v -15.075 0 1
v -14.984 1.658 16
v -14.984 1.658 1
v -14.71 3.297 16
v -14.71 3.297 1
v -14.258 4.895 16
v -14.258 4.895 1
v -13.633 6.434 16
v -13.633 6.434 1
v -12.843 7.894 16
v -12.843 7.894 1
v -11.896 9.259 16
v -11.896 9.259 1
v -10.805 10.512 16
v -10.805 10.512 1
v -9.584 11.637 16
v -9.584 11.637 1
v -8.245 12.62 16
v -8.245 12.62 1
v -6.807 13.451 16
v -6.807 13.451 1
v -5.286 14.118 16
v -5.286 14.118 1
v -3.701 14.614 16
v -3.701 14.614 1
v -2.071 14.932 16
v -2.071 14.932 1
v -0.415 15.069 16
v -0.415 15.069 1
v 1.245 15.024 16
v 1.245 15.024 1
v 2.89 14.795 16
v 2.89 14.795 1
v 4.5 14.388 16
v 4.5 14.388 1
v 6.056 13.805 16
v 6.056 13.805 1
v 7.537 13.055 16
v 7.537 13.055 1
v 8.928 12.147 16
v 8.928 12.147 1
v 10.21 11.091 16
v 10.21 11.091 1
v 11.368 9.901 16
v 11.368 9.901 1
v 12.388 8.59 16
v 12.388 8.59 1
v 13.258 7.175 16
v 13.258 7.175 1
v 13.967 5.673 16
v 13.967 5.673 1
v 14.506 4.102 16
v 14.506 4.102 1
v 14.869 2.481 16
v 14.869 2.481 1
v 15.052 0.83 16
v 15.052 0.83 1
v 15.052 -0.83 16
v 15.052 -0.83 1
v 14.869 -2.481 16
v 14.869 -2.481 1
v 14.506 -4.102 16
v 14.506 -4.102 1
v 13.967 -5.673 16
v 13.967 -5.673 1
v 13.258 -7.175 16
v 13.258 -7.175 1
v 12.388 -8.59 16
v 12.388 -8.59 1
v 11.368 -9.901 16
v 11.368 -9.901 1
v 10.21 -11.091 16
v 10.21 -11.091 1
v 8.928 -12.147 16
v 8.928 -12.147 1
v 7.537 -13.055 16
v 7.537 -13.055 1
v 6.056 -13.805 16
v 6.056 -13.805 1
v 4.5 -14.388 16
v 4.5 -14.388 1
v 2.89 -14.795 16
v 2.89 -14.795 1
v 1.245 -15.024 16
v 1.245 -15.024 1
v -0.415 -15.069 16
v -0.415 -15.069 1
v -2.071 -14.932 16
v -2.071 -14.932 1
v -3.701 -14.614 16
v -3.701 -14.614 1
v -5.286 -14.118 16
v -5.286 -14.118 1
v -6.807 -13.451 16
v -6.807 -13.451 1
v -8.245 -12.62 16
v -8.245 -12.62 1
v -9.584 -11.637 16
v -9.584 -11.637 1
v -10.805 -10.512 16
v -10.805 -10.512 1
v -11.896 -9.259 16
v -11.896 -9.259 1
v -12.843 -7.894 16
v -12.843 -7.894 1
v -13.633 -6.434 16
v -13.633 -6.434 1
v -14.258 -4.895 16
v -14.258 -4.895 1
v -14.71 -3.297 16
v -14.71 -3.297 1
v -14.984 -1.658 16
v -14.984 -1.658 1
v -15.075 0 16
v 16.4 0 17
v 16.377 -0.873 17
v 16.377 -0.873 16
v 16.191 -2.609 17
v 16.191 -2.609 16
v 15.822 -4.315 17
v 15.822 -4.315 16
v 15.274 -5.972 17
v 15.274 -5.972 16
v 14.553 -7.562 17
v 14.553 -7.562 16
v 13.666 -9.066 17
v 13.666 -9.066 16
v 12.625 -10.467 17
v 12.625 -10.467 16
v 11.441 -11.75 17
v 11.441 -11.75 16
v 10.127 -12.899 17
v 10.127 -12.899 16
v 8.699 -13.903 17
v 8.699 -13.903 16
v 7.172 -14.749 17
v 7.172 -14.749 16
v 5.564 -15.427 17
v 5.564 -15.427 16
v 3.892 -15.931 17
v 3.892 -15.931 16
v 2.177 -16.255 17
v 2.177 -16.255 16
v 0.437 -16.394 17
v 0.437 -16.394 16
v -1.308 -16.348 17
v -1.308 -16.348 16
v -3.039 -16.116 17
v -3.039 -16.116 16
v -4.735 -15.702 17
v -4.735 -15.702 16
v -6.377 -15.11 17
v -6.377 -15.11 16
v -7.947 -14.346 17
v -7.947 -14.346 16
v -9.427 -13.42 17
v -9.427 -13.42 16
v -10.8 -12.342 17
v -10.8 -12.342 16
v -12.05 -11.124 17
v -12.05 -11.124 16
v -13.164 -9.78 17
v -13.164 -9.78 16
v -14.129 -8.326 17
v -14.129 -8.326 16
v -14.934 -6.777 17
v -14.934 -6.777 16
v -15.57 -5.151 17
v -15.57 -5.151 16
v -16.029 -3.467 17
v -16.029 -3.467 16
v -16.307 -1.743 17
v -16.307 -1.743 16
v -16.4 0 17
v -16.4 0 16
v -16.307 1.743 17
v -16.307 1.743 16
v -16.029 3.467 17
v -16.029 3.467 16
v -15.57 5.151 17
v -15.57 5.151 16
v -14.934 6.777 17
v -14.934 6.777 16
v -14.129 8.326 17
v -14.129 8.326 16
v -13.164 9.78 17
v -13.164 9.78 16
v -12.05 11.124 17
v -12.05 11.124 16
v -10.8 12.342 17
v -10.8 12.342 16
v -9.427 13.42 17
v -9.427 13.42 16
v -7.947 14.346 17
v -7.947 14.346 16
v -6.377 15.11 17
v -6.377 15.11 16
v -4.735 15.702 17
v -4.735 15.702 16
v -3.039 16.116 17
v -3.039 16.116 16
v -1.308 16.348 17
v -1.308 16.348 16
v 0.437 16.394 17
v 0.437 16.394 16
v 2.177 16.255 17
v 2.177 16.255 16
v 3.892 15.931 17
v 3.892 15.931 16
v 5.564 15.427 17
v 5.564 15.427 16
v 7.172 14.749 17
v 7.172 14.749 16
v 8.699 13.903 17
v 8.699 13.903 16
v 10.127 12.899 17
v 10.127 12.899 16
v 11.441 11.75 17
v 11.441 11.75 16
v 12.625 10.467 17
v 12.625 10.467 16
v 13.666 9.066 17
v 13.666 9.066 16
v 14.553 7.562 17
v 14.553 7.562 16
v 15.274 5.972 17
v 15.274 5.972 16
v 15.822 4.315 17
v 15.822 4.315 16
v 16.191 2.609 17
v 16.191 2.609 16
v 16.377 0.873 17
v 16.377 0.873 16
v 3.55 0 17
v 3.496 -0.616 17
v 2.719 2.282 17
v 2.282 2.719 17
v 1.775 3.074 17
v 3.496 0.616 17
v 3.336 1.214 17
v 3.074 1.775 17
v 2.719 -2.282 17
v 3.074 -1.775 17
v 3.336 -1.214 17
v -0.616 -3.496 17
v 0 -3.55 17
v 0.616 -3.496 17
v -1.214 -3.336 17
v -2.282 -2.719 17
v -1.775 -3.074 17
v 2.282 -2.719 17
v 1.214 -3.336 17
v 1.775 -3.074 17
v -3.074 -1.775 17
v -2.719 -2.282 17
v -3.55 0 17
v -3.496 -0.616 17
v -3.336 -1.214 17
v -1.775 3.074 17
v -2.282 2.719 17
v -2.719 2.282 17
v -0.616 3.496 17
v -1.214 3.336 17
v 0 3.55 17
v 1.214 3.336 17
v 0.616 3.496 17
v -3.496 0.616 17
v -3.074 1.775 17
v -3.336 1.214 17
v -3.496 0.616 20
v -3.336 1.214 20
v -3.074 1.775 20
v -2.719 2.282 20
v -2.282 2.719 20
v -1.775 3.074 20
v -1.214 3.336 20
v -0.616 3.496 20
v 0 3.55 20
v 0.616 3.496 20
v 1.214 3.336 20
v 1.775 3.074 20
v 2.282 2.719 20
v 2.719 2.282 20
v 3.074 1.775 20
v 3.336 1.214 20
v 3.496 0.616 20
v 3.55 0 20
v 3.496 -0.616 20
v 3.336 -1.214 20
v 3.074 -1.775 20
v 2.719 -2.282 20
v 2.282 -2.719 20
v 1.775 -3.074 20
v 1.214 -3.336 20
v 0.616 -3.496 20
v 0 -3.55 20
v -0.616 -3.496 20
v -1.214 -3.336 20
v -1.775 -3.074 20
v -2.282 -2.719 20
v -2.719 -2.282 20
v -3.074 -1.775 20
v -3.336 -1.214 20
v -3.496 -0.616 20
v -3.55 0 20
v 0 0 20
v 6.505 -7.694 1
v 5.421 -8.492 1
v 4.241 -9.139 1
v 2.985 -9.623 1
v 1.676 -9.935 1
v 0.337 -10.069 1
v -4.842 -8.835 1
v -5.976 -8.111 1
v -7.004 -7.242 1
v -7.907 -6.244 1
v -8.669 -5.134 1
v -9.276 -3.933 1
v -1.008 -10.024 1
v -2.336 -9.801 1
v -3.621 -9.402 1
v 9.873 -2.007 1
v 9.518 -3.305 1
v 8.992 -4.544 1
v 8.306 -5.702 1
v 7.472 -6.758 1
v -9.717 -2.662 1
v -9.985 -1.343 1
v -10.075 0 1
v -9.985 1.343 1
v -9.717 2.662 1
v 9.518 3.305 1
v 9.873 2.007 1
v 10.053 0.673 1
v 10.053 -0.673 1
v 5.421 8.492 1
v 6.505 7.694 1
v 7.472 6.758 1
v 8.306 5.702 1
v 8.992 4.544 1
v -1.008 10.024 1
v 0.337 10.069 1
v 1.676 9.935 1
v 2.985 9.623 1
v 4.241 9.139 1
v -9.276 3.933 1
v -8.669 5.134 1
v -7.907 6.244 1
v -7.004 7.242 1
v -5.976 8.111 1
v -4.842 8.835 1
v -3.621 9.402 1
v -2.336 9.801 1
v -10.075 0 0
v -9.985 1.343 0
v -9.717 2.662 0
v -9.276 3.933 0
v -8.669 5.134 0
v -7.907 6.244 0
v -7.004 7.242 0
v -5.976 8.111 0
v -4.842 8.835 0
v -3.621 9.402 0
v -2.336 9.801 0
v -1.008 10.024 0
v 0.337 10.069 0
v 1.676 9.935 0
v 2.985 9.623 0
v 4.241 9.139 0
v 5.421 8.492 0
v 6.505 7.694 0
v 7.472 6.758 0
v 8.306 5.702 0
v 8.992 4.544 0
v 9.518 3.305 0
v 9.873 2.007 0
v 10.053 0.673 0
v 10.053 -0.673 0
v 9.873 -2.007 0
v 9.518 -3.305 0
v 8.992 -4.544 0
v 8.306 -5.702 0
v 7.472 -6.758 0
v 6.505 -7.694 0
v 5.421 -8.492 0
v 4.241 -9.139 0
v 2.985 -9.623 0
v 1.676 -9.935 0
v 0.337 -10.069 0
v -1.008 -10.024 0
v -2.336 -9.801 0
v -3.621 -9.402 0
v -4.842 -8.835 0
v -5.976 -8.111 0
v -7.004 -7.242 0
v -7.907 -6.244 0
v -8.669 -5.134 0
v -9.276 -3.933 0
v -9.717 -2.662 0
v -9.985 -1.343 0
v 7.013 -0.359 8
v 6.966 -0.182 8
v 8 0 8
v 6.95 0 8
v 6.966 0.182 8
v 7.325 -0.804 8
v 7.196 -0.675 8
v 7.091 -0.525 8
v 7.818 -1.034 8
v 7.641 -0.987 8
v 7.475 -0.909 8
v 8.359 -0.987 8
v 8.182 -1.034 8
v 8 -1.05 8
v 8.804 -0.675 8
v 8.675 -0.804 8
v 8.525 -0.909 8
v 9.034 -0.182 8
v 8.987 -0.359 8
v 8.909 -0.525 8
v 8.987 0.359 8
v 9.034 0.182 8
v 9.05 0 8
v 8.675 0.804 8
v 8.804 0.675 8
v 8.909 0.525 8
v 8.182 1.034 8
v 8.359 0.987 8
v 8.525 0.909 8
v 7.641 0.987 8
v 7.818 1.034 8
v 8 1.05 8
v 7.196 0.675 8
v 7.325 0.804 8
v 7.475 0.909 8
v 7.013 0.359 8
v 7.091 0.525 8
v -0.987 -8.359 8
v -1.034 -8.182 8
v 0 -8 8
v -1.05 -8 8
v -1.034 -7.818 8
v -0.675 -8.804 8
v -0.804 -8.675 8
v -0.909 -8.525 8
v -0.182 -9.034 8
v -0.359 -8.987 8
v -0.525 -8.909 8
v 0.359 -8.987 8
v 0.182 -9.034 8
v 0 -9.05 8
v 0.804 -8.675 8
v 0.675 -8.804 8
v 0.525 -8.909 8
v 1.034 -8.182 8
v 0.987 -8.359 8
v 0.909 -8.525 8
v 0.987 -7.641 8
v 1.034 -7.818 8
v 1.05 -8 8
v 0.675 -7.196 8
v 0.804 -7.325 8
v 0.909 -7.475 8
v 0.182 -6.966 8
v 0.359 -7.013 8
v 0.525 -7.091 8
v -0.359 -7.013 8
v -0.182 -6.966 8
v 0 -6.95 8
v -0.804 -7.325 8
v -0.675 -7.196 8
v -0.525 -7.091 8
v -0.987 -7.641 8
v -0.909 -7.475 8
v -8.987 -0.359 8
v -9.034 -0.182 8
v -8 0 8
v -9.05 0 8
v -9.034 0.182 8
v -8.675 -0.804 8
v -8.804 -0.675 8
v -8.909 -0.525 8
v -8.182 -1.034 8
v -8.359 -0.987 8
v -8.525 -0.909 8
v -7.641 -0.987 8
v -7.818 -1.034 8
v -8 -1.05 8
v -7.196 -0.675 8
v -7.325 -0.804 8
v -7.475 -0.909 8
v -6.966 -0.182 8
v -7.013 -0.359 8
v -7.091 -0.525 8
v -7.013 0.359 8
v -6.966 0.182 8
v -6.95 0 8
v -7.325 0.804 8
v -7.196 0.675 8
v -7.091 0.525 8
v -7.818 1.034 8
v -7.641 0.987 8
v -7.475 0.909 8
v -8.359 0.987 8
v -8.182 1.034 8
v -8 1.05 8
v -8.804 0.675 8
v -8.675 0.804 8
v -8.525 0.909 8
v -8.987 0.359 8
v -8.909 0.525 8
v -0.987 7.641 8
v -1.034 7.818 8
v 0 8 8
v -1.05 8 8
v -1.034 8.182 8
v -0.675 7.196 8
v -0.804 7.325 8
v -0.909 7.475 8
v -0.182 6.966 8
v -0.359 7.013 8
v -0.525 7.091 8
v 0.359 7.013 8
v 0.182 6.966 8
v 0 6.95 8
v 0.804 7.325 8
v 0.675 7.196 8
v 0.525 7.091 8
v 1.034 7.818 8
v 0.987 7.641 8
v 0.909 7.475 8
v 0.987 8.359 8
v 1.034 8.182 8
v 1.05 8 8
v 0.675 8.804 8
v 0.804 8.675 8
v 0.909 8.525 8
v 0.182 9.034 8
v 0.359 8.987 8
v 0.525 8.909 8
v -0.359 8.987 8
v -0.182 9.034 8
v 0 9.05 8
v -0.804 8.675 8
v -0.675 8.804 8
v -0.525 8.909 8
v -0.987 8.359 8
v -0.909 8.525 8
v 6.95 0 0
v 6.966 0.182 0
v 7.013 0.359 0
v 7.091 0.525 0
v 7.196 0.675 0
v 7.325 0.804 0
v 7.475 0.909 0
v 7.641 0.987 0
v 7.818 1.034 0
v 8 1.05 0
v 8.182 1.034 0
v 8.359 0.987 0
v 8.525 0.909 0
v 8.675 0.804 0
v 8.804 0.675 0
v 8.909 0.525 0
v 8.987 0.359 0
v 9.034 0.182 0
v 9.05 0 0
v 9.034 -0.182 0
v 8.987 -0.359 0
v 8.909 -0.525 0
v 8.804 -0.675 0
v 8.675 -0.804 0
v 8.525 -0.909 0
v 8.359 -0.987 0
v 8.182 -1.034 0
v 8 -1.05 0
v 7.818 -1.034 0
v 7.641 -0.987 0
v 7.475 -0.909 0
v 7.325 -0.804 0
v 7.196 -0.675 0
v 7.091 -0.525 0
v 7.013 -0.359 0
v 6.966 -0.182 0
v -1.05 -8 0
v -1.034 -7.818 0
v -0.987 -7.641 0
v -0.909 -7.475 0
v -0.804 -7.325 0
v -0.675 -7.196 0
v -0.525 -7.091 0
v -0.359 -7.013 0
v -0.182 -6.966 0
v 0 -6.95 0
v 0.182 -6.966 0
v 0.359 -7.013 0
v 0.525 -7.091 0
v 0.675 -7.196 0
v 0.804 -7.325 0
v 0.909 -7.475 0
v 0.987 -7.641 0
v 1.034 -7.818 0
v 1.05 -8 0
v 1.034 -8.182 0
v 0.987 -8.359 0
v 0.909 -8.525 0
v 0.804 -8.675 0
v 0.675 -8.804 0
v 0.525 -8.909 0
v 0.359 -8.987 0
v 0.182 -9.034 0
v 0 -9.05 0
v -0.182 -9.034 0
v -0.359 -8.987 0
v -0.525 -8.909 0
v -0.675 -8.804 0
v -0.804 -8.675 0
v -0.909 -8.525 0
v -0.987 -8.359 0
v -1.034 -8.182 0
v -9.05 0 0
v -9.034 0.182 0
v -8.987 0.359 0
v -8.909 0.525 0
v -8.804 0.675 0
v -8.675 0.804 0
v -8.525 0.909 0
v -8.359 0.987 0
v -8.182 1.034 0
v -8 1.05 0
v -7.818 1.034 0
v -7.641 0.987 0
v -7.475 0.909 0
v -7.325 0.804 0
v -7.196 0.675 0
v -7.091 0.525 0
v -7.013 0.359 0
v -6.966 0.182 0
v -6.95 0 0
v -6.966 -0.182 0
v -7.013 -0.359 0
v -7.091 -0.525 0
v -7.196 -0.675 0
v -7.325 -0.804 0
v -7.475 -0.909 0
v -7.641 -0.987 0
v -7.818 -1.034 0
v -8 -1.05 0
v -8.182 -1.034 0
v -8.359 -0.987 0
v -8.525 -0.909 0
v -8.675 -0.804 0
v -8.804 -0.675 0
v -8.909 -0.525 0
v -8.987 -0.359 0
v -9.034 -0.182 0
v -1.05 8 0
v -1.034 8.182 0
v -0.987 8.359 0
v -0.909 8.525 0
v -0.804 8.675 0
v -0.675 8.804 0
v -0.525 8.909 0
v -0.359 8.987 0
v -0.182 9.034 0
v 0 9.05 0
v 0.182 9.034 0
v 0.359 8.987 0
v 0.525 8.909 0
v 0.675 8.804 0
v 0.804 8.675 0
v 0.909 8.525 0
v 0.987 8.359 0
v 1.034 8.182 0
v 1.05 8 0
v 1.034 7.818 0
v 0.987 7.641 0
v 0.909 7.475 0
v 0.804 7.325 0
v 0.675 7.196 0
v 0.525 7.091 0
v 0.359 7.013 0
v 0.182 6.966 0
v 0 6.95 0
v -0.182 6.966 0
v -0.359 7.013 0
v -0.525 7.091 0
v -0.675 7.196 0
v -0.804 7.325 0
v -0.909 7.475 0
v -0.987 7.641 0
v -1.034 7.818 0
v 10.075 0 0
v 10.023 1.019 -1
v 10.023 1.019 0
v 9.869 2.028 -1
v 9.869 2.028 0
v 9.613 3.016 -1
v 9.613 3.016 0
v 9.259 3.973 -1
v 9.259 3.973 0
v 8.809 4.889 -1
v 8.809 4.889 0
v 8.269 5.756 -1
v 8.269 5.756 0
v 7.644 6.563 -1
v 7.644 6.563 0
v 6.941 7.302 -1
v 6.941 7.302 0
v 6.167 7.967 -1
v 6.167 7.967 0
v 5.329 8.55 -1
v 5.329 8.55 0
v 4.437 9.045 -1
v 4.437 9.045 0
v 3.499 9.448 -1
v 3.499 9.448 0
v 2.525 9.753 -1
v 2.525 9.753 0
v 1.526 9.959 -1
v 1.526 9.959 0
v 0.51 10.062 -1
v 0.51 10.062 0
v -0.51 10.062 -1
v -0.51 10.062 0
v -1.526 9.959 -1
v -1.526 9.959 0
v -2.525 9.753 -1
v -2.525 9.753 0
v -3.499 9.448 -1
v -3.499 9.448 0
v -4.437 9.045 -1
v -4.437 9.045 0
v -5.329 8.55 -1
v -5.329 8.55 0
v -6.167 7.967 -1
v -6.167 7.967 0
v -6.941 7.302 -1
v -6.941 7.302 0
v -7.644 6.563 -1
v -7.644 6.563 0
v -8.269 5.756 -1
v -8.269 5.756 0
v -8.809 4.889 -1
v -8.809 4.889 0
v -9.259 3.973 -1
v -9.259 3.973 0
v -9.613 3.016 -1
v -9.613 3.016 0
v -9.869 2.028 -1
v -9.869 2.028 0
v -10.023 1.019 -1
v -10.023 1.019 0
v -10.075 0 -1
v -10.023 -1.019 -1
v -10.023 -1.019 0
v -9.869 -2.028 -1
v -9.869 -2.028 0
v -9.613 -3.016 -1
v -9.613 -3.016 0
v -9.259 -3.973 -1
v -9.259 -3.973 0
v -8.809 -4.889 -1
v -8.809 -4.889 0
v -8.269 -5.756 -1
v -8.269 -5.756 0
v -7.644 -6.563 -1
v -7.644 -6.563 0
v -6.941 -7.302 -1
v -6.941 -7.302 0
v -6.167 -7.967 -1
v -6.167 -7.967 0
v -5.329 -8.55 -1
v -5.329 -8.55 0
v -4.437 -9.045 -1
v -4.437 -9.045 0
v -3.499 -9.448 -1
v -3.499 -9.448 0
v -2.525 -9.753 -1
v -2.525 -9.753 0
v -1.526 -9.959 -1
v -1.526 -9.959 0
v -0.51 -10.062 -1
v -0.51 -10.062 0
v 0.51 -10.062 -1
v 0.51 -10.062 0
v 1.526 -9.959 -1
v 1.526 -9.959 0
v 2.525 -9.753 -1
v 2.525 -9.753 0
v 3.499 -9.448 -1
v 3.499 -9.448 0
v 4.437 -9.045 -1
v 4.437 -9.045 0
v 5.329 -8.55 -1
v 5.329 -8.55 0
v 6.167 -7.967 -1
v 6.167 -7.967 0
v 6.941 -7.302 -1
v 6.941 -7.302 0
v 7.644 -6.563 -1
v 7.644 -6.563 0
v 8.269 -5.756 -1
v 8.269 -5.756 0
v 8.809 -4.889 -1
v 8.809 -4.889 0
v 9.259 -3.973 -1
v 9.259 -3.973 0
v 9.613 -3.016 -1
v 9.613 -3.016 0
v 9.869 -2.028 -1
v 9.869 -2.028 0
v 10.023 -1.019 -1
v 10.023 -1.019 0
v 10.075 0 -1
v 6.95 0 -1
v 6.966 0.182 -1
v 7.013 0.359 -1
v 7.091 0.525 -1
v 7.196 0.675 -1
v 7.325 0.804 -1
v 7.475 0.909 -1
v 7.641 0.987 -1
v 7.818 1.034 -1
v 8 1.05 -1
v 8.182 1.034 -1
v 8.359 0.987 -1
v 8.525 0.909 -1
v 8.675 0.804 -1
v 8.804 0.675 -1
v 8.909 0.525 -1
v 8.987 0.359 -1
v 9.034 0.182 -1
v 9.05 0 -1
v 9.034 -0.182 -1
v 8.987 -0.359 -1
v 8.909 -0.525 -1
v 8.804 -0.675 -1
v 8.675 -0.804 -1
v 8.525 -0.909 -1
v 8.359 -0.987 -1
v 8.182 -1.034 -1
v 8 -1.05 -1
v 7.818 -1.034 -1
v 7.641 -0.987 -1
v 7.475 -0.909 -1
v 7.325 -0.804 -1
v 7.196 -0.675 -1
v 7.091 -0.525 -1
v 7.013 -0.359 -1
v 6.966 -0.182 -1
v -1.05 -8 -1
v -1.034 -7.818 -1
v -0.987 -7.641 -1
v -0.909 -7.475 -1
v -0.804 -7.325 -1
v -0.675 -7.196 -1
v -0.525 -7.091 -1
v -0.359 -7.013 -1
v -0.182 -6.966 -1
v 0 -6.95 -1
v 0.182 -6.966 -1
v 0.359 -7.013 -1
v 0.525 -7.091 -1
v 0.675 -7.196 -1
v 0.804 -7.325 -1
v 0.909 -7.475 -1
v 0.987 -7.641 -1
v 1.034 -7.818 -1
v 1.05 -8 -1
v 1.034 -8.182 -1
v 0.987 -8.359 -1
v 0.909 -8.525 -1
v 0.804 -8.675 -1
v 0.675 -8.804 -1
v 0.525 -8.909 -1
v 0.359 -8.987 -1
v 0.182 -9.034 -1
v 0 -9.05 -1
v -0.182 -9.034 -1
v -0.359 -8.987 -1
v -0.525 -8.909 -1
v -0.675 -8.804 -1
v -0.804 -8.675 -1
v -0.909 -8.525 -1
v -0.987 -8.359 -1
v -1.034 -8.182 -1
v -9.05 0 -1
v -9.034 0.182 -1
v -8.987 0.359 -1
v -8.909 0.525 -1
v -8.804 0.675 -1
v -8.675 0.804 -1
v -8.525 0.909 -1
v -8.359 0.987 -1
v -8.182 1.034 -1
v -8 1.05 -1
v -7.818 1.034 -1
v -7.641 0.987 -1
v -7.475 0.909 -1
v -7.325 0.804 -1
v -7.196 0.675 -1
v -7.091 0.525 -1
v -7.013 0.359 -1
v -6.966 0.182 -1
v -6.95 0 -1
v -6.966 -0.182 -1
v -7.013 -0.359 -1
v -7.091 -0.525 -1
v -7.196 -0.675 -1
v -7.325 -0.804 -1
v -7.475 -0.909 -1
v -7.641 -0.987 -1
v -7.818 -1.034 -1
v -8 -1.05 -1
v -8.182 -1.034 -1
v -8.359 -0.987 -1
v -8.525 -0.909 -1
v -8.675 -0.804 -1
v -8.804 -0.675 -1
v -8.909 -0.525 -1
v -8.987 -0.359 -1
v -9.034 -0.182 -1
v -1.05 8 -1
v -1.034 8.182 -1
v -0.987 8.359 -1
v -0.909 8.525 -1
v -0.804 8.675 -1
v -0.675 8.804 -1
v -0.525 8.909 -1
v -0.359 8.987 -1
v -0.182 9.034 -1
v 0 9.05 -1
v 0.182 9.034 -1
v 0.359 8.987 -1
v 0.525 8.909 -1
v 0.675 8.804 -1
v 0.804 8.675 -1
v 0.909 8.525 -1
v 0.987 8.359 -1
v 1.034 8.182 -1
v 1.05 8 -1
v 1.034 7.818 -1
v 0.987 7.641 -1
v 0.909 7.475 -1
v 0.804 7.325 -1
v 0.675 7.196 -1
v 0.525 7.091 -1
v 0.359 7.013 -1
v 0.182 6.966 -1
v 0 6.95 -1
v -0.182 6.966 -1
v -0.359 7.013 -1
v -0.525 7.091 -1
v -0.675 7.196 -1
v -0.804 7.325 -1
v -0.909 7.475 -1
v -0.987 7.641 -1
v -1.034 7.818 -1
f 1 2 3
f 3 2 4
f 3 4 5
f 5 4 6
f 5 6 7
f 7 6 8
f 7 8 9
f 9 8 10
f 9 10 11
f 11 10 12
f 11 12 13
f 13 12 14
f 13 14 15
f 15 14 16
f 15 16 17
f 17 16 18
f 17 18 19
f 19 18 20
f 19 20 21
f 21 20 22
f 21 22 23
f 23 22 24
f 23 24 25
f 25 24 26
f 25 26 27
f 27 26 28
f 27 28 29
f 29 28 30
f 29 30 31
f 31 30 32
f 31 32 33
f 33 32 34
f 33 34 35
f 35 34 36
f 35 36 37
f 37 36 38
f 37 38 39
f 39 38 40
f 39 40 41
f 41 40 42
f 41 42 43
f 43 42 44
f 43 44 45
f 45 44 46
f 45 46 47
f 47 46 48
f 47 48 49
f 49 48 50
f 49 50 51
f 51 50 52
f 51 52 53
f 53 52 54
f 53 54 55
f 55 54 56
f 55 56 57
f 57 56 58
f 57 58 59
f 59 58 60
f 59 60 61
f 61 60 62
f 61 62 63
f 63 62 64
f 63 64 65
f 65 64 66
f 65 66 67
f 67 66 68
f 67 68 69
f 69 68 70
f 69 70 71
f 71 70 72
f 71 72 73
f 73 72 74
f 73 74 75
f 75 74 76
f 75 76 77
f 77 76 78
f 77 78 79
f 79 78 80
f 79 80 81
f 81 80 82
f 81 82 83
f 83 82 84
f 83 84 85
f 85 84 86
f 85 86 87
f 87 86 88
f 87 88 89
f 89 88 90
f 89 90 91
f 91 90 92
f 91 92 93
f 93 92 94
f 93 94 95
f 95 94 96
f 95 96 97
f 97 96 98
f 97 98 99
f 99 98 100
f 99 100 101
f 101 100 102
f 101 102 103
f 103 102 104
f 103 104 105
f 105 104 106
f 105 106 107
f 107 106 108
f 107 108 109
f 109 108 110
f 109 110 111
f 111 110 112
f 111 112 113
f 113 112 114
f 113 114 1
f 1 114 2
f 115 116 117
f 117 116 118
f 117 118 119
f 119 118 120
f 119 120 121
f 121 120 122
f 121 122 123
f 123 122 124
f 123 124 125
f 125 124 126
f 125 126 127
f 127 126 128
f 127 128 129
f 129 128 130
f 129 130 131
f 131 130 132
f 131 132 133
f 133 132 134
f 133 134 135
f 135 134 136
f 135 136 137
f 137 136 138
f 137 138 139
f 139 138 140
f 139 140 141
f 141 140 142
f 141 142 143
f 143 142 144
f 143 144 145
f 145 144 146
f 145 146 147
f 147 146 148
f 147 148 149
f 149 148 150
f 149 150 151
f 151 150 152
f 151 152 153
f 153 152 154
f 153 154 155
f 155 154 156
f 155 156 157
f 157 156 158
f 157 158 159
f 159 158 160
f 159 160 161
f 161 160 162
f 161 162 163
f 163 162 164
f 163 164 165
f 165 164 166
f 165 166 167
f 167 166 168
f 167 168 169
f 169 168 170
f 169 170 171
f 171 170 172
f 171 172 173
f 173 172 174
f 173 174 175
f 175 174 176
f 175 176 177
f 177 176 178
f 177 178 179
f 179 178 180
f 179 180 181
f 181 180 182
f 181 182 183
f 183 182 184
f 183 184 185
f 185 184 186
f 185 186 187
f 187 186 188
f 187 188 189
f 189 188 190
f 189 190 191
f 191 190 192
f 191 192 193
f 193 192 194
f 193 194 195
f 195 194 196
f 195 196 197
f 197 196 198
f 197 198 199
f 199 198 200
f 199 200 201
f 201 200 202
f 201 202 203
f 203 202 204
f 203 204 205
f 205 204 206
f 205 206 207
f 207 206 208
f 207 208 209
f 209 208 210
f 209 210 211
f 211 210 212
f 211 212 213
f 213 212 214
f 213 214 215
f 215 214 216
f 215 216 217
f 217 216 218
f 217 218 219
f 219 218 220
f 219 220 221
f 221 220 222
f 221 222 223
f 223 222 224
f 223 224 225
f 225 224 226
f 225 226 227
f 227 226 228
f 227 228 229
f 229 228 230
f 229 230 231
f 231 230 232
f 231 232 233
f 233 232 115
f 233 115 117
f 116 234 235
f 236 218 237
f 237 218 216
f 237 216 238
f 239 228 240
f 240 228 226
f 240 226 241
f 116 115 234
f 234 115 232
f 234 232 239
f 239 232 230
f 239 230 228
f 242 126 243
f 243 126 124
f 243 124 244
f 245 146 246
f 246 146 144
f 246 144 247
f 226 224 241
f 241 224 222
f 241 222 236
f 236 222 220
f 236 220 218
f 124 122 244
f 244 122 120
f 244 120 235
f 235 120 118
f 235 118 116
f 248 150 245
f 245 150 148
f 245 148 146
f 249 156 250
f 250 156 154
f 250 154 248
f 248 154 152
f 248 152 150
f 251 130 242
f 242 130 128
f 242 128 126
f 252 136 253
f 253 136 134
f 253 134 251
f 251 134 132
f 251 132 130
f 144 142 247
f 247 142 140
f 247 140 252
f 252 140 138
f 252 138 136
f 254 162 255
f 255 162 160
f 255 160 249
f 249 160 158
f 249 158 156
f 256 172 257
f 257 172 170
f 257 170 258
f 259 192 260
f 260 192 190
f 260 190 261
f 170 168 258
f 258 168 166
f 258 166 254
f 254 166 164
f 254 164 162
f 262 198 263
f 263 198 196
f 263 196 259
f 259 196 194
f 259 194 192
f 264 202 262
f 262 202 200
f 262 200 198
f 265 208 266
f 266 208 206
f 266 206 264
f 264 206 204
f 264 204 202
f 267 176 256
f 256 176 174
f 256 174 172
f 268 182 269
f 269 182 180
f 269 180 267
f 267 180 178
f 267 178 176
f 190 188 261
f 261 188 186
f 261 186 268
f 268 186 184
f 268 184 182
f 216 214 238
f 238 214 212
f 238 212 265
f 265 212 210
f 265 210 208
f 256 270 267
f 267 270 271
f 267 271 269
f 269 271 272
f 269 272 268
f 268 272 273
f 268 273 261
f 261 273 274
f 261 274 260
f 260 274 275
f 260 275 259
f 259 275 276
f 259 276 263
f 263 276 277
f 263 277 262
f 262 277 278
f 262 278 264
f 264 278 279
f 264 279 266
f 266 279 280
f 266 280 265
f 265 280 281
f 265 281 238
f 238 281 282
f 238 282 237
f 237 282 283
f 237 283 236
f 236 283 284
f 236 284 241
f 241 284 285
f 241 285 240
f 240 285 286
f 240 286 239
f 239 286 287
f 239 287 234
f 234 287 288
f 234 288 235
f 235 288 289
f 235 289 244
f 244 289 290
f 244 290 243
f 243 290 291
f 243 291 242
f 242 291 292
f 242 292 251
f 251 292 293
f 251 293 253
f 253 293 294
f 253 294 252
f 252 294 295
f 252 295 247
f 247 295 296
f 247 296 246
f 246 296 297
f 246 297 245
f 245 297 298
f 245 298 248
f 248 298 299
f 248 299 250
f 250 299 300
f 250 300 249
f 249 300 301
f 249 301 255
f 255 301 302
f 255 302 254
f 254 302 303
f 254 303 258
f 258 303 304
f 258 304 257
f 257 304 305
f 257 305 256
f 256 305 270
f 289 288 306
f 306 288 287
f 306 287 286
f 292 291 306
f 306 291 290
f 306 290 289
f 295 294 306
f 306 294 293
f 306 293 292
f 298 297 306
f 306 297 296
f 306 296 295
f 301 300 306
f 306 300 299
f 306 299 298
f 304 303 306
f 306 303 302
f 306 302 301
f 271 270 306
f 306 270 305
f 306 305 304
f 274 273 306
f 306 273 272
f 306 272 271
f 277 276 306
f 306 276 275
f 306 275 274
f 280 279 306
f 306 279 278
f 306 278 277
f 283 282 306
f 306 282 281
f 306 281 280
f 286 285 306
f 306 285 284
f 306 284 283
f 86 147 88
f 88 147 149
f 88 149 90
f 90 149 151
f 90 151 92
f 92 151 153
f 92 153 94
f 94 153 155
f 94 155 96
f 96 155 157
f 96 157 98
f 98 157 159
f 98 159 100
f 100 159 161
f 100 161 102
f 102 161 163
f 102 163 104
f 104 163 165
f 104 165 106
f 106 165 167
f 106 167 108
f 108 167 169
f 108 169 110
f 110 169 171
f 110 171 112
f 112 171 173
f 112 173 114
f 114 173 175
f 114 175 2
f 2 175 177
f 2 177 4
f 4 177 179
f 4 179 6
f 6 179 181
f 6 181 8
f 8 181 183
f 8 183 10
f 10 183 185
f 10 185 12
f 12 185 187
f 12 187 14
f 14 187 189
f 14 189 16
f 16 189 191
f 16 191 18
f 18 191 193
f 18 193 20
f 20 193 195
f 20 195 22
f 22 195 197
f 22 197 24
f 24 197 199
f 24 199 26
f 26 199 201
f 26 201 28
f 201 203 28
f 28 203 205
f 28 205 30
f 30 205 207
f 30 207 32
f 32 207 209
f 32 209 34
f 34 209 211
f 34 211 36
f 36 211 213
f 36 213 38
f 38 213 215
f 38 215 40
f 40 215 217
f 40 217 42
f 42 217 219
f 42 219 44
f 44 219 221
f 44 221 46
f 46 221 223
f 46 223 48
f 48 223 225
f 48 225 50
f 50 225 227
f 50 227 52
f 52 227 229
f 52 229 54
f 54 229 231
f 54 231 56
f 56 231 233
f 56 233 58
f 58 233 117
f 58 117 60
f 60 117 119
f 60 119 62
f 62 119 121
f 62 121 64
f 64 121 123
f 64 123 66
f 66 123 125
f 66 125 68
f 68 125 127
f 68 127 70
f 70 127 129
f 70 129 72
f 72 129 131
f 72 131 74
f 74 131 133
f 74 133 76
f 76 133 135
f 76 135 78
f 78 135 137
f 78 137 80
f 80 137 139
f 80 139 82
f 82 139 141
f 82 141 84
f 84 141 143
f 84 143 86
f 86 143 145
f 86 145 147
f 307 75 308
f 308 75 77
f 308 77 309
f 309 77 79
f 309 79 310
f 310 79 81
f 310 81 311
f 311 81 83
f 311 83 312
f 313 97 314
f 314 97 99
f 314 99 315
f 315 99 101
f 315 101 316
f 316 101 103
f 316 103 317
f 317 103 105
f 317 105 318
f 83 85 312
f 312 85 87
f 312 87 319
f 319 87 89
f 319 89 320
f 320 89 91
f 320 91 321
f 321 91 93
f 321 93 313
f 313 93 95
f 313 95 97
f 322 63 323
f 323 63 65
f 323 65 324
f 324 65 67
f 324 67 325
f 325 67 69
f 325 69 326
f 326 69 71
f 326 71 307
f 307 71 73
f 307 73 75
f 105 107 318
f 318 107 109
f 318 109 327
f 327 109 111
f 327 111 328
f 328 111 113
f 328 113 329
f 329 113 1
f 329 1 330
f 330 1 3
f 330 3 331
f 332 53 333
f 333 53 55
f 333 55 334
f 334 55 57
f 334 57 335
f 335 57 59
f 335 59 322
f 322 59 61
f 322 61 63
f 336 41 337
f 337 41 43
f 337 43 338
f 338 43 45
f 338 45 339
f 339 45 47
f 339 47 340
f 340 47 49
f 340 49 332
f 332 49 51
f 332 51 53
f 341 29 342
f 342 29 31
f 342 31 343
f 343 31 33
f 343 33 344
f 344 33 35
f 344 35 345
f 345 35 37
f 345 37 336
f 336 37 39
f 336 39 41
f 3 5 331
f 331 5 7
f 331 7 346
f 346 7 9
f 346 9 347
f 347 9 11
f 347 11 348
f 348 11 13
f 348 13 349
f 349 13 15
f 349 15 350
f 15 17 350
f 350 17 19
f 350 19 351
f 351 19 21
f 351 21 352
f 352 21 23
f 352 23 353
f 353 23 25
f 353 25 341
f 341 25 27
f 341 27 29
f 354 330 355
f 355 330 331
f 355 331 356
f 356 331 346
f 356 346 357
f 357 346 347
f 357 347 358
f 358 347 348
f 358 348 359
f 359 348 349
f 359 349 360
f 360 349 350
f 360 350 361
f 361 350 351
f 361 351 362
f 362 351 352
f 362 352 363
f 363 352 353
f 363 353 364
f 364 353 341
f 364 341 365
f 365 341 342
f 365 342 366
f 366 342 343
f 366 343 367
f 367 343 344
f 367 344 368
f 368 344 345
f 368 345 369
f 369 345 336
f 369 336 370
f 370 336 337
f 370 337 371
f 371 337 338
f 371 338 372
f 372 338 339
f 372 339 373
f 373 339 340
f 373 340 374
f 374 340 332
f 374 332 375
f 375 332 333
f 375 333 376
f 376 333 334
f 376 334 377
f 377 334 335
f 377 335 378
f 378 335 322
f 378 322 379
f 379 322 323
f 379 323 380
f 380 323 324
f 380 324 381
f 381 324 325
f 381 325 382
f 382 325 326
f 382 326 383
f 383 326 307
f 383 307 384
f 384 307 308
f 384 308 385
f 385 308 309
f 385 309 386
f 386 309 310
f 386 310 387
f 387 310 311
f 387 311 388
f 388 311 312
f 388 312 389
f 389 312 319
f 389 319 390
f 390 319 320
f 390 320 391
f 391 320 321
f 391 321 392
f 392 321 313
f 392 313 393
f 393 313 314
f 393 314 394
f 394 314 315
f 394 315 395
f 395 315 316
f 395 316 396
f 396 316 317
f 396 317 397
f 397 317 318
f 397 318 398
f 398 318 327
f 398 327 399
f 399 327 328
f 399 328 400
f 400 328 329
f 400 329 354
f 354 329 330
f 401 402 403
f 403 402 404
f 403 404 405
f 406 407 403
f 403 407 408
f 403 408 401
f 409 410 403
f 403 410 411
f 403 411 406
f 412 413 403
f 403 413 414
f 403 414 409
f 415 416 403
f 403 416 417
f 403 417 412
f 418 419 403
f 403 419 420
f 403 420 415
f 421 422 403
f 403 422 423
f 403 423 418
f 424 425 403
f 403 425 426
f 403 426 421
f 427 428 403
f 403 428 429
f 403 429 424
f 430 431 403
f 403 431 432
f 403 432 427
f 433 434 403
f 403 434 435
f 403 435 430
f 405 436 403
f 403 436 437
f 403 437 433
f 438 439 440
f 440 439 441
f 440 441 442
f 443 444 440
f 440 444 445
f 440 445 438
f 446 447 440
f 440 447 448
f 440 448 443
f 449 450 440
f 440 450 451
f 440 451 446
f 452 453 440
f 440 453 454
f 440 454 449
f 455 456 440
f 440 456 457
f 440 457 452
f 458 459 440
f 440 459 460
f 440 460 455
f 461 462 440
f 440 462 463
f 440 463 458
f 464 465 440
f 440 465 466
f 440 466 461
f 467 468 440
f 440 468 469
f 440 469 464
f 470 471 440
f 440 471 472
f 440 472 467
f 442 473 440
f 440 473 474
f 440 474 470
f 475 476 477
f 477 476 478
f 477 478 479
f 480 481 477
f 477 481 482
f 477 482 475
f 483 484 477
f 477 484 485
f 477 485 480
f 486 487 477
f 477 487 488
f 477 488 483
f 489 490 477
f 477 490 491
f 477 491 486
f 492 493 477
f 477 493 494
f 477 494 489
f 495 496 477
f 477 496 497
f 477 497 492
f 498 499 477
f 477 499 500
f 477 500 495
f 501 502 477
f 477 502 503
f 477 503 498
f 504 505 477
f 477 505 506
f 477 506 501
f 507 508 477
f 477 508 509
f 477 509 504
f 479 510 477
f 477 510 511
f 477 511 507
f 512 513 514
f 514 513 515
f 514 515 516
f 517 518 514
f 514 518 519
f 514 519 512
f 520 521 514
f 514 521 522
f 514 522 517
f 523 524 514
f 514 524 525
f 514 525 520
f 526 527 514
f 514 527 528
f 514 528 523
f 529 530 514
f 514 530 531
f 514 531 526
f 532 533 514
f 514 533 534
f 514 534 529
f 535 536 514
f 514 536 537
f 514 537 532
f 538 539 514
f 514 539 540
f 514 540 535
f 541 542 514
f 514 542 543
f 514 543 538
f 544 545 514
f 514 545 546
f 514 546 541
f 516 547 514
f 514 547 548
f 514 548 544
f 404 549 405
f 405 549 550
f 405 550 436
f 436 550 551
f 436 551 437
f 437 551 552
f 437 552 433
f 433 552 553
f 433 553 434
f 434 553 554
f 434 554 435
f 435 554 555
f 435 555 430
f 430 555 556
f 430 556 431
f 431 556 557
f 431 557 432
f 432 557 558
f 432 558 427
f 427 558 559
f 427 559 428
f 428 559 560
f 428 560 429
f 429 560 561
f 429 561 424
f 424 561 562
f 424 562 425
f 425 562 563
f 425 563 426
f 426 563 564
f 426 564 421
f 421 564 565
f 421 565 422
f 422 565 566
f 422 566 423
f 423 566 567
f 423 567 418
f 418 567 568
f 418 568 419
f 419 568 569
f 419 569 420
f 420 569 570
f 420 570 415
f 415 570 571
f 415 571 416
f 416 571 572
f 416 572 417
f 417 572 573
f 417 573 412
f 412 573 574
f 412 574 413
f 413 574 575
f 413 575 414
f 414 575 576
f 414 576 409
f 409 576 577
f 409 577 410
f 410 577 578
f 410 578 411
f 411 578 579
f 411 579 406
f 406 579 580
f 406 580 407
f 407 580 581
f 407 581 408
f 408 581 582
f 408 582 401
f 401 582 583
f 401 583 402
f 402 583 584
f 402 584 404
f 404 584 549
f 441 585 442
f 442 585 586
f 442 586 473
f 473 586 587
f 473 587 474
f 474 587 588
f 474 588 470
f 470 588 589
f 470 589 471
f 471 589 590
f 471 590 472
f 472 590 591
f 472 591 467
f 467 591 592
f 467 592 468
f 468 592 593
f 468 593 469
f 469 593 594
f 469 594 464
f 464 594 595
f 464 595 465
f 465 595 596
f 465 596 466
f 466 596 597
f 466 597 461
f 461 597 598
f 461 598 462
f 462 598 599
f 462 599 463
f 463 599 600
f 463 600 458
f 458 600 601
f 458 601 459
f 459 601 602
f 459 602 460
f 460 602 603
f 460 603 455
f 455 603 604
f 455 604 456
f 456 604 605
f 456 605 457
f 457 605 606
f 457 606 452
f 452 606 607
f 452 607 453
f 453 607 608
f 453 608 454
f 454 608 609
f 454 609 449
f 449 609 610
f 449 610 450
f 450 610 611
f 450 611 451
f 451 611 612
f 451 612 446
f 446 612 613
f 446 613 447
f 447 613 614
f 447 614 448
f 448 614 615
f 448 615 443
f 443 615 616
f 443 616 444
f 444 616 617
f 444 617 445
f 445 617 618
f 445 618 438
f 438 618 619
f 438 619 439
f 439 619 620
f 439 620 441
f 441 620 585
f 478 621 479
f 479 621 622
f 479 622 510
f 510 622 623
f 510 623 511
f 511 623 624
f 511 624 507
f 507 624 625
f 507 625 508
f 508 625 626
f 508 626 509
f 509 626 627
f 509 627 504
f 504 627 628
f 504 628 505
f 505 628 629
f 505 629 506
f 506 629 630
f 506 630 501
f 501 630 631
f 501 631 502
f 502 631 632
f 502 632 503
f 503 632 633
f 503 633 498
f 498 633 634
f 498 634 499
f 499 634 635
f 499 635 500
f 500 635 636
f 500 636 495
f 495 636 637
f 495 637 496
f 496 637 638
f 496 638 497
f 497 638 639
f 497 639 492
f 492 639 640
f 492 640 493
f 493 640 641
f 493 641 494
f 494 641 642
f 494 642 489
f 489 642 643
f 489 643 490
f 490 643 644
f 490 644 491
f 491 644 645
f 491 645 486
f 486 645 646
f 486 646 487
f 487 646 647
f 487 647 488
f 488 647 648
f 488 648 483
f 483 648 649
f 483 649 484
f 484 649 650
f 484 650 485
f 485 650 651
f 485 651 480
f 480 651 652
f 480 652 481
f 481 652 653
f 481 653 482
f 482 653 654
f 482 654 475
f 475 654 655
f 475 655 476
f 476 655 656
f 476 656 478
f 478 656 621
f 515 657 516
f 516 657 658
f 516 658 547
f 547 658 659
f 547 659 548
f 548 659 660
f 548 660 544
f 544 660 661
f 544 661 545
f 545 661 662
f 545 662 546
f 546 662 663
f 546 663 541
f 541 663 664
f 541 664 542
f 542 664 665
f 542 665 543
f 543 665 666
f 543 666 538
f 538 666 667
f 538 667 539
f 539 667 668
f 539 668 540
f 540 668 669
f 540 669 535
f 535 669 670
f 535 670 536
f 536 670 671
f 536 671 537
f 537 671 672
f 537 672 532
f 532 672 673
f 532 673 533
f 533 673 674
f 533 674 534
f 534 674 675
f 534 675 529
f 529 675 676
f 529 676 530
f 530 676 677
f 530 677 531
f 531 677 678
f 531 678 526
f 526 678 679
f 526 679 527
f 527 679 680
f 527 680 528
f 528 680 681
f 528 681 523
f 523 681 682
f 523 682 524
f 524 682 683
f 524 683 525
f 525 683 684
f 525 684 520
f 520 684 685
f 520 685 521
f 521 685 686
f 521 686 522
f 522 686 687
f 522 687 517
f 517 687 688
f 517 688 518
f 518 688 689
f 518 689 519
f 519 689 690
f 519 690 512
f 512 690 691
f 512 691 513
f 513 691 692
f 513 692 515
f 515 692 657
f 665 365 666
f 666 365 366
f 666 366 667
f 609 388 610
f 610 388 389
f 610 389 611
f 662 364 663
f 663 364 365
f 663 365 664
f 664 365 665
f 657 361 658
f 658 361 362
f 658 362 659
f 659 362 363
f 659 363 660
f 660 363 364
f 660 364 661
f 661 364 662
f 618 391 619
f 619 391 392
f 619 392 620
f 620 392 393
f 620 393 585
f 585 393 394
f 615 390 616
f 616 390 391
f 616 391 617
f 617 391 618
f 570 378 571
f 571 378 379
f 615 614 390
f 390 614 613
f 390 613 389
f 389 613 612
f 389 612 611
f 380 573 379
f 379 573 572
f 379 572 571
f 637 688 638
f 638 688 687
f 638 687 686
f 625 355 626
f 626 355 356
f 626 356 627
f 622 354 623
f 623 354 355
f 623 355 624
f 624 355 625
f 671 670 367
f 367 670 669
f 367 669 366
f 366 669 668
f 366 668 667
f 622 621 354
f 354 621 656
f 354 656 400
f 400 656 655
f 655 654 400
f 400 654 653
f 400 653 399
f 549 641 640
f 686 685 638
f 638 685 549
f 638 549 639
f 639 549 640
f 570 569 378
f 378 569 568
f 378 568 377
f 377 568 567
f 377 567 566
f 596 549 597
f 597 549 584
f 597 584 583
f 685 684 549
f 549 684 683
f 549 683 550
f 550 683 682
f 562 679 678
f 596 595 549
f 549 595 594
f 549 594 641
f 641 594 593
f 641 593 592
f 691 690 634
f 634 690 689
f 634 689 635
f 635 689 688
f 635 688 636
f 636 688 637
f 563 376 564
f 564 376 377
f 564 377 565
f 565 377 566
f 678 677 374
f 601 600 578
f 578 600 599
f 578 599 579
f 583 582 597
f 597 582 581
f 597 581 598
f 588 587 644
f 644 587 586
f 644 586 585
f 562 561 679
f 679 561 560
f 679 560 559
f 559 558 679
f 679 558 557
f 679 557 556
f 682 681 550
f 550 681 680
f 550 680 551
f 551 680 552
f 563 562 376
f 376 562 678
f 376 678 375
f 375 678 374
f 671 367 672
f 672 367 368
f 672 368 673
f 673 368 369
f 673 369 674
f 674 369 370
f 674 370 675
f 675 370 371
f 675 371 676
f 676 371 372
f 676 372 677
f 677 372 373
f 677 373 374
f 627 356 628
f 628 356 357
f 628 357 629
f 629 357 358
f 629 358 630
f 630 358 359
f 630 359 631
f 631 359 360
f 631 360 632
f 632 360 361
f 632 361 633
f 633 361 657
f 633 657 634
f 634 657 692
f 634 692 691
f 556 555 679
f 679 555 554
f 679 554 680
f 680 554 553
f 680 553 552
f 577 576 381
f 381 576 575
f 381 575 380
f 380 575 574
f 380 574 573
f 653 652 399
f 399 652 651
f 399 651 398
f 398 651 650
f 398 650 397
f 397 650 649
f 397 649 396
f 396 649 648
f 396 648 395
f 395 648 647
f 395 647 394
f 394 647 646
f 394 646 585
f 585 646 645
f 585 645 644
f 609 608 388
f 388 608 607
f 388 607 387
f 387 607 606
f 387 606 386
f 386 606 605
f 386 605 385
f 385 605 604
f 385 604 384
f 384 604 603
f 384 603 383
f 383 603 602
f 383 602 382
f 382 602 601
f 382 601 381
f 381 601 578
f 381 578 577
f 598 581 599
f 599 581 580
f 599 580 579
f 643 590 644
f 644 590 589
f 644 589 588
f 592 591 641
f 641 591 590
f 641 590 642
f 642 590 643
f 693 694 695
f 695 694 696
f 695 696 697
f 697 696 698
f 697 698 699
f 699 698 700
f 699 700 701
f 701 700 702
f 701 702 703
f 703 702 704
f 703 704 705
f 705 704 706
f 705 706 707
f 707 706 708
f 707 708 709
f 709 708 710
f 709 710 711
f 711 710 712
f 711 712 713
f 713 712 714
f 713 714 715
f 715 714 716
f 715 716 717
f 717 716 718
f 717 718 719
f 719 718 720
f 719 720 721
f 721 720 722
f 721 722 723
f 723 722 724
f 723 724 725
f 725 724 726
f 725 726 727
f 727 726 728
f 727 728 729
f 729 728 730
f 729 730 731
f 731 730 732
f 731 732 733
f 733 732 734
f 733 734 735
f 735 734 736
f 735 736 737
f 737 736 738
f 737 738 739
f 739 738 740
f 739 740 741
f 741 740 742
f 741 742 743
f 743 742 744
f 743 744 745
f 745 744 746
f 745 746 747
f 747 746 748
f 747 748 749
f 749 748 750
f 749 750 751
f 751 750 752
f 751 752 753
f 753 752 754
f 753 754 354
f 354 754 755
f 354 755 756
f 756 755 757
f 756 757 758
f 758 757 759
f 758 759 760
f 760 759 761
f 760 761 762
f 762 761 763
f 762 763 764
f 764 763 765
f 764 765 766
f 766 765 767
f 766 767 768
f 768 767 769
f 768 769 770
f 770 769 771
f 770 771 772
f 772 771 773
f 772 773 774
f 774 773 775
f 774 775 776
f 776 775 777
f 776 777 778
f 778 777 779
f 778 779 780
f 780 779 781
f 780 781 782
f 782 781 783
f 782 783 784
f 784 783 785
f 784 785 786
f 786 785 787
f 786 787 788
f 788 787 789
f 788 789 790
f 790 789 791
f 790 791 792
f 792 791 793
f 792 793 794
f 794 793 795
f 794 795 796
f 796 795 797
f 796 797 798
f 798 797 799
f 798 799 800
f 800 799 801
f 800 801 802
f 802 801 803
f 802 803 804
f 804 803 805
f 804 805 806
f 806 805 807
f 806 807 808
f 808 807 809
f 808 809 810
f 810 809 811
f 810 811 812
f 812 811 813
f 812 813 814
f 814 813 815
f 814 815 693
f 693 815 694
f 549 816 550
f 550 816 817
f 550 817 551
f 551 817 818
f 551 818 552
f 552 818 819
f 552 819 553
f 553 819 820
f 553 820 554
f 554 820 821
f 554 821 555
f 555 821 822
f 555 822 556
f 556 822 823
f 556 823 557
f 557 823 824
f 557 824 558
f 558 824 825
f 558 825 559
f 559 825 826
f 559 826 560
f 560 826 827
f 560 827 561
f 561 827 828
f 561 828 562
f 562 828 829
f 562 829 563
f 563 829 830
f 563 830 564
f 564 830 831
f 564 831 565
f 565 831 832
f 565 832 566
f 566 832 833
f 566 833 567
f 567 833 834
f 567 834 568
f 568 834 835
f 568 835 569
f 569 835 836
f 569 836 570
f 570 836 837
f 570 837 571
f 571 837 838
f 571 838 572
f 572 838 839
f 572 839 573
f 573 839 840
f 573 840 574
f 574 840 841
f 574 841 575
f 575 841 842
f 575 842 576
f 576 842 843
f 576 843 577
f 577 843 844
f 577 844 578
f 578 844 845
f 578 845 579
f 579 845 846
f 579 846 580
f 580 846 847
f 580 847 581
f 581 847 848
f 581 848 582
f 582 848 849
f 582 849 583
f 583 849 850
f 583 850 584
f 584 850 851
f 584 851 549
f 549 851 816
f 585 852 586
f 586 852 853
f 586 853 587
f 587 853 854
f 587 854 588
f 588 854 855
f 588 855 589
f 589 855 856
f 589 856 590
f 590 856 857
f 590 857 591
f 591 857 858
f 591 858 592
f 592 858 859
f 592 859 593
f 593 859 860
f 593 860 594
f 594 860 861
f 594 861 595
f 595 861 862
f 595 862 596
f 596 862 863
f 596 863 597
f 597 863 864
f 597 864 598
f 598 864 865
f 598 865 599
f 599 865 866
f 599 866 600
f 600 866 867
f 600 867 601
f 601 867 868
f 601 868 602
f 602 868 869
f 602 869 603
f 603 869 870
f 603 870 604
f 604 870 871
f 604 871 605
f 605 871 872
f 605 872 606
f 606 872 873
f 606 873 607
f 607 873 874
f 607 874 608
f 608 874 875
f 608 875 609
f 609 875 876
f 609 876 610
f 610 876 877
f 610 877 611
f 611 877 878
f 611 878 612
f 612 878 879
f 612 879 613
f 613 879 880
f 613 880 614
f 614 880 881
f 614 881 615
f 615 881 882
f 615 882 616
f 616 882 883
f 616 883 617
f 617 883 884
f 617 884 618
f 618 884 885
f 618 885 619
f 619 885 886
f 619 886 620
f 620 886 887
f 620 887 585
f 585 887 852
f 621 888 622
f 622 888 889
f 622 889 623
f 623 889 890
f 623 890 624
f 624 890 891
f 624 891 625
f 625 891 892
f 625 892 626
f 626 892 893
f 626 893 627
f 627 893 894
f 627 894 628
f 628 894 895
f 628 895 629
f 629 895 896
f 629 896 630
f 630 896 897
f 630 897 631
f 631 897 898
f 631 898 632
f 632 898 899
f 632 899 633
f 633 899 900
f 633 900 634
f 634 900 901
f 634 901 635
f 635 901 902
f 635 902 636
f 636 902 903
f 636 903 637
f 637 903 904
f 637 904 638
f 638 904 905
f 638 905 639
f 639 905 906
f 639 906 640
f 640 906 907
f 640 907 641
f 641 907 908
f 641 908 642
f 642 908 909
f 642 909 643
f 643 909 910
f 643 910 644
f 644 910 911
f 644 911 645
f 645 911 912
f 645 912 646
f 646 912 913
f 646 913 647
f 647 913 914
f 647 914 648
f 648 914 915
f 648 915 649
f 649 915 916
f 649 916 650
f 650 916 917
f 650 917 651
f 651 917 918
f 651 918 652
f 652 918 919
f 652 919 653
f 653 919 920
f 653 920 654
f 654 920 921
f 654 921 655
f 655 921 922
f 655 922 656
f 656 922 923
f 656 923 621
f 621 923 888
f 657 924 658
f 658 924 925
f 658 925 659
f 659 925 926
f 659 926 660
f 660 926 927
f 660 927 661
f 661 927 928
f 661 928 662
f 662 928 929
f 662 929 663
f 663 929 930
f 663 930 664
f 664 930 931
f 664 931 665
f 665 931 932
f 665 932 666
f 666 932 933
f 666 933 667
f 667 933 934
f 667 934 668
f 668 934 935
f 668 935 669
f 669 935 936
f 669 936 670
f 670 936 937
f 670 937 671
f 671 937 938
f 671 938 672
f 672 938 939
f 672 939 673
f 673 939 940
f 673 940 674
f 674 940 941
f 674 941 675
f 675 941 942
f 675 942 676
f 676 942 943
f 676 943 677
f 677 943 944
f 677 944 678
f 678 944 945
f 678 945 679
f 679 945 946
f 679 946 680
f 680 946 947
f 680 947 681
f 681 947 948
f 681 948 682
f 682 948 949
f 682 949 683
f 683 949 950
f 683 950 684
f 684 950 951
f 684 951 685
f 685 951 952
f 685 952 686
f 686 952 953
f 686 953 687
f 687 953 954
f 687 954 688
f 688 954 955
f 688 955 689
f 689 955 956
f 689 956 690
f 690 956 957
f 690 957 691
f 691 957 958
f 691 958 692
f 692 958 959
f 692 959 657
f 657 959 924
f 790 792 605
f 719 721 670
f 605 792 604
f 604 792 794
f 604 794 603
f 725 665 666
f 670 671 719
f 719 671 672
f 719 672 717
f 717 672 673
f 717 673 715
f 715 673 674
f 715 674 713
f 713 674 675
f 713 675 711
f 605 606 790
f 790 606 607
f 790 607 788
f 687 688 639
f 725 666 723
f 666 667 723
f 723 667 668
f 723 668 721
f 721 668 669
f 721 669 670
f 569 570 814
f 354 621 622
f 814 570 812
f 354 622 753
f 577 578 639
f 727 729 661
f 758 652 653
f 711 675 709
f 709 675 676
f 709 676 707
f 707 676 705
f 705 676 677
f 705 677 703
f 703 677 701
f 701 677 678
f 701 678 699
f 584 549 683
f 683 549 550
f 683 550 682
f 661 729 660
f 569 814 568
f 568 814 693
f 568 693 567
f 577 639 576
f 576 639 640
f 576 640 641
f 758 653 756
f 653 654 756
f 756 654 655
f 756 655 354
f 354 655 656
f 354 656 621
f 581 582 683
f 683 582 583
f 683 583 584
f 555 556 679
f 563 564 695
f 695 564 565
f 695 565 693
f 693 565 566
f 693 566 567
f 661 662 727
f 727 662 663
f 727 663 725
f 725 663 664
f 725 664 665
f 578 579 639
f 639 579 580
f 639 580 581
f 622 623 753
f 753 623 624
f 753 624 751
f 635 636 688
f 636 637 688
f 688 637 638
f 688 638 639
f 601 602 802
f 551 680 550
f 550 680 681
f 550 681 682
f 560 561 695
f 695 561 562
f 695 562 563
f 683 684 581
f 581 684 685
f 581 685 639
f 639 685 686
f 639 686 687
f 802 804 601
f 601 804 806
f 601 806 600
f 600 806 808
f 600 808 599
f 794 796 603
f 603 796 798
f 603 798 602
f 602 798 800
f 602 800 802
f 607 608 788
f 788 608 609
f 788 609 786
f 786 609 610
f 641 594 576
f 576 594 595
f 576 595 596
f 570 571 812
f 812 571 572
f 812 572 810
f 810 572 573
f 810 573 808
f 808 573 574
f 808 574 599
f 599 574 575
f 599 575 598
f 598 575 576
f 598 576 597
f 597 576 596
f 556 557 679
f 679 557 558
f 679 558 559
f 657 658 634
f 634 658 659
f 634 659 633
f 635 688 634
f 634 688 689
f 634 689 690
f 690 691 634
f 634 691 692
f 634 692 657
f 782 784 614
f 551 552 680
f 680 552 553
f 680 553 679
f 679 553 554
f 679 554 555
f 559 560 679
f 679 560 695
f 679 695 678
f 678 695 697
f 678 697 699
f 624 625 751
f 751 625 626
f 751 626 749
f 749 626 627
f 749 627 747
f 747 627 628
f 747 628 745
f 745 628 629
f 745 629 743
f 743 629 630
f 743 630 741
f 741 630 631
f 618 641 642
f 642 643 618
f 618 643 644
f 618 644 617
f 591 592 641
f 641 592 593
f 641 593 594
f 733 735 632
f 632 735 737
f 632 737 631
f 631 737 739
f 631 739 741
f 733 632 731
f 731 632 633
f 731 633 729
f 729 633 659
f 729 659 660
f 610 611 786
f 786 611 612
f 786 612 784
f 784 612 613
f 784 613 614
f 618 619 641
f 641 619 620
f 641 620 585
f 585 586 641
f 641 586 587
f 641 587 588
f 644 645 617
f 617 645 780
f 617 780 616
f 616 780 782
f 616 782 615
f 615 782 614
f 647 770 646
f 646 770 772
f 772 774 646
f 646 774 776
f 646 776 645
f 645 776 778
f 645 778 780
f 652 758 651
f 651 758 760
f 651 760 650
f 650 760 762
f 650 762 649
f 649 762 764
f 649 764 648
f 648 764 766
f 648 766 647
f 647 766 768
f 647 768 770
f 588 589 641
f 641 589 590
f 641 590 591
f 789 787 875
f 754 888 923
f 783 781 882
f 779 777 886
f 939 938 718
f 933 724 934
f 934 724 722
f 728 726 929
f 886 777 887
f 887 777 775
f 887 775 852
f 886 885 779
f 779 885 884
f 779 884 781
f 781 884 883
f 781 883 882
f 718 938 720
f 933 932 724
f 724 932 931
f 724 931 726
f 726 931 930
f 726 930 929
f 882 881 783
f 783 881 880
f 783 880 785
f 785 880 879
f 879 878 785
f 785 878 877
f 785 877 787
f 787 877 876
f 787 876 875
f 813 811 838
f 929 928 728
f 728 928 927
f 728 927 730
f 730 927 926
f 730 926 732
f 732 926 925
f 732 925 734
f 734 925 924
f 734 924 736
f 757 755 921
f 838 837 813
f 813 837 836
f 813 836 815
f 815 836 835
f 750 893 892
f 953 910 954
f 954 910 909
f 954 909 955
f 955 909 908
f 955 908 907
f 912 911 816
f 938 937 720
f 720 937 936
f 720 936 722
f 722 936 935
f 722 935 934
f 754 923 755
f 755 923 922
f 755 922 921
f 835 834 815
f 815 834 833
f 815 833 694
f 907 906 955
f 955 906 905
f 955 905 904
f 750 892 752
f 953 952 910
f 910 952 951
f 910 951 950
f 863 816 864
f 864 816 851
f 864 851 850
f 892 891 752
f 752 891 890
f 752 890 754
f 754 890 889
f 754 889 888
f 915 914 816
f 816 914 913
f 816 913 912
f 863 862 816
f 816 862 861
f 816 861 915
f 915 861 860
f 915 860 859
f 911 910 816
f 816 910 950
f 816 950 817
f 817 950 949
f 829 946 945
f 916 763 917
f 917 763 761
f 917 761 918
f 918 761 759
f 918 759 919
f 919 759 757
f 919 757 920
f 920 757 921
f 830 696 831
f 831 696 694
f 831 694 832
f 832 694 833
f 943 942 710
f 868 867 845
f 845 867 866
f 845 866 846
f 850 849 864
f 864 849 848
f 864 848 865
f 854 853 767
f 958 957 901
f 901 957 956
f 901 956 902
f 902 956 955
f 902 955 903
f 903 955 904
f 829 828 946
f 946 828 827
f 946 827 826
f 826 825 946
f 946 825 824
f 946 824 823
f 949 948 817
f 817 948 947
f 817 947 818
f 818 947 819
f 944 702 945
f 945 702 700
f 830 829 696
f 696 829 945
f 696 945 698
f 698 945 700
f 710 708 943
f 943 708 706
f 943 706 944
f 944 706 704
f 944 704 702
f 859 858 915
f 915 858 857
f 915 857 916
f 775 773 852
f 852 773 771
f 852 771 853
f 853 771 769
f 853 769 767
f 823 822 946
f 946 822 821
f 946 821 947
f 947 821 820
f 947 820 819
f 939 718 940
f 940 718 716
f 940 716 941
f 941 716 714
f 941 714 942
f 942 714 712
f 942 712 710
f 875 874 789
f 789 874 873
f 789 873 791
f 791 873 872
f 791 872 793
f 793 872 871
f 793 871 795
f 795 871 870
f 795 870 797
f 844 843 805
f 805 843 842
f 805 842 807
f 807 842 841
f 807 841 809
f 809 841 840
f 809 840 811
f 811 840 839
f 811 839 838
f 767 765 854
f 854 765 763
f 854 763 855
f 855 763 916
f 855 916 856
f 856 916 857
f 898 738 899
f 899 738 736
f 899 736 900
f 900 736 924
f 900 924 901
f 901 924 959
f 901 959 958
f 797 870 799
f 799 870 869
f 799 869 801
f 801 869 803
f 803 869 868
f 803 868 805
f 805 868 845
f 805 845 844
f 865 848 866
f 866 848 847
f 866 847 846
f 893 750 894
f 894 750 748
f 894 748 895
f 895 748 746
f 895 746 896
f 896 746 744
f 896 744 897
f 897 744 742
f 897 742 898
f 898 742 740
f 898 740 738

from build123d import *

# Parameters (mm, degrees)
SKETCH_1_R          = 16.4
EXTRUDE_1_DEPTH     = 17
SKETCH_2_R          = 3.55
EXTRUDE_2_DEPTH     = 3
SKETCH_3_R          = 10.075
EXTRUDE_3_DEPTH     = 2
SKETCH_7_R          = 1.05
CUT_EXTRUDE_3_DEPTH = 10
SKETCH3_R           = 16.4
SKETCH3_R_2         = 15.075
CUT_EXTRUDE1_DEPTH  = 16
SKETCH4_R           = 15.075
SKETCH4_R_2         = 10.075
CUT_EXTRUDE2_DEPTH  = 1
SKETCH5_R           = 10.075
CUT_EXTRUDE3_DEPTH  = 1


with BuildPart() as part:
    # 草图1 → 凸台-拉伸1 (new body)
    with BuildSketch(Plane.XY):
        Circle(SKETCH_1_R)
    extrude(amount=EXTRUDE_1_DEPTH)

    # 草图2 → 凸台-拉伸2 (add)
    with BuildSketch(Plane.XY.offset(17)):
        Circle(SKETCH_2_R)
    extrude(amount=EXTRUDE_2_DEPTH)


with BuildPart() as body_2:
    # 草图3 → 凸台-拉伸3 (new body)
    with BuildSketch(Plane(origin=(0, 0, 0), x_dir=(-1, 0, 0), z_dir=(0, 0, -1))):
        Circle(SKETCH_3_R)
    extrude(amount=EXTRUDE_3_DEPTH)


with BuildPart() as cut_extrude_3_tool:
    # 草图7 → 切除-拉伸3 (new body)
    with BuildSketch(Plane(origin=(0, 0, -2), x_dir=(-1, 0, 0), z_dir=(0, 0, -1))):
        with Locations((0, 8)):
            Circle(SKETCH_7_R)
        with Locations((8, 0)):
            Circle(SKETCH_7_R)
        with Locations((0, -8)):
            Circle(SKETCH_7_R)
        with Locations((-8, 0)):
            Circle(SKETCH_7_R)
    extrude(amount=-CUT_EXTRUDE_3_DEPTH)


with BuildPart() as part_1:
    add(part.part)

    # 切除-拉伸3: cut by cut_extrude_3_tool
    add(cut_extrude_3_tool.part, mode=Mode.SUBTRACT)

    # Sketch3 → Cut-Extrude1 (cut)
    with BuildSketch(Plane(origin=(0, 0, 0), x_dir=(-1, 0, 0), z_dir=(0, 0, -1))):
        Circle(SKETCH3_R)
        Circle(SKETCH3_R_2, mode=Mode.SUBTRACT)
    extrude(amount=-CUT_EXTRUDE1_DEPTH, mode=Mode.SUBTRACT)

    # Sketch4 → Cut-Extrude2 (cut)
    with BuildSketch(Plane(origin=(0, 0, 0), x_dir=(-1, 0, 0), z_dir=(0, 0, -1))):
        Circle(SKETCH4_R)
        Circle(SKETCH4_R_2, mode=Mode.SUBTRACT)
    extrude(amount=-CUT_EXTRUDE2_DEPTH, mode=Mode.SUBTRACT)


with BuildPart() as body_2_1:
    add(body_2.part)

    # 切除-拉伸3: cut by cut_extrude_3_tool
    add(cut_extrude_3_tool.part, mode=Mode.SUBTRACT)

    # Sketch5 → Cut-Extrude3 (cut)
    with BuildSketch(Plane(origin=(0, 0, -2), x_dir=(-1, 0, 0), z_dir=(0, 0, -1))):
        Circle(SKETCH5_R)
    extrude(amount=-CUT_EXTRUDE3_DEPTH, mode=Mode.SUBTRACT)


solid = Compound([part_1.part, body_2_1.part])
